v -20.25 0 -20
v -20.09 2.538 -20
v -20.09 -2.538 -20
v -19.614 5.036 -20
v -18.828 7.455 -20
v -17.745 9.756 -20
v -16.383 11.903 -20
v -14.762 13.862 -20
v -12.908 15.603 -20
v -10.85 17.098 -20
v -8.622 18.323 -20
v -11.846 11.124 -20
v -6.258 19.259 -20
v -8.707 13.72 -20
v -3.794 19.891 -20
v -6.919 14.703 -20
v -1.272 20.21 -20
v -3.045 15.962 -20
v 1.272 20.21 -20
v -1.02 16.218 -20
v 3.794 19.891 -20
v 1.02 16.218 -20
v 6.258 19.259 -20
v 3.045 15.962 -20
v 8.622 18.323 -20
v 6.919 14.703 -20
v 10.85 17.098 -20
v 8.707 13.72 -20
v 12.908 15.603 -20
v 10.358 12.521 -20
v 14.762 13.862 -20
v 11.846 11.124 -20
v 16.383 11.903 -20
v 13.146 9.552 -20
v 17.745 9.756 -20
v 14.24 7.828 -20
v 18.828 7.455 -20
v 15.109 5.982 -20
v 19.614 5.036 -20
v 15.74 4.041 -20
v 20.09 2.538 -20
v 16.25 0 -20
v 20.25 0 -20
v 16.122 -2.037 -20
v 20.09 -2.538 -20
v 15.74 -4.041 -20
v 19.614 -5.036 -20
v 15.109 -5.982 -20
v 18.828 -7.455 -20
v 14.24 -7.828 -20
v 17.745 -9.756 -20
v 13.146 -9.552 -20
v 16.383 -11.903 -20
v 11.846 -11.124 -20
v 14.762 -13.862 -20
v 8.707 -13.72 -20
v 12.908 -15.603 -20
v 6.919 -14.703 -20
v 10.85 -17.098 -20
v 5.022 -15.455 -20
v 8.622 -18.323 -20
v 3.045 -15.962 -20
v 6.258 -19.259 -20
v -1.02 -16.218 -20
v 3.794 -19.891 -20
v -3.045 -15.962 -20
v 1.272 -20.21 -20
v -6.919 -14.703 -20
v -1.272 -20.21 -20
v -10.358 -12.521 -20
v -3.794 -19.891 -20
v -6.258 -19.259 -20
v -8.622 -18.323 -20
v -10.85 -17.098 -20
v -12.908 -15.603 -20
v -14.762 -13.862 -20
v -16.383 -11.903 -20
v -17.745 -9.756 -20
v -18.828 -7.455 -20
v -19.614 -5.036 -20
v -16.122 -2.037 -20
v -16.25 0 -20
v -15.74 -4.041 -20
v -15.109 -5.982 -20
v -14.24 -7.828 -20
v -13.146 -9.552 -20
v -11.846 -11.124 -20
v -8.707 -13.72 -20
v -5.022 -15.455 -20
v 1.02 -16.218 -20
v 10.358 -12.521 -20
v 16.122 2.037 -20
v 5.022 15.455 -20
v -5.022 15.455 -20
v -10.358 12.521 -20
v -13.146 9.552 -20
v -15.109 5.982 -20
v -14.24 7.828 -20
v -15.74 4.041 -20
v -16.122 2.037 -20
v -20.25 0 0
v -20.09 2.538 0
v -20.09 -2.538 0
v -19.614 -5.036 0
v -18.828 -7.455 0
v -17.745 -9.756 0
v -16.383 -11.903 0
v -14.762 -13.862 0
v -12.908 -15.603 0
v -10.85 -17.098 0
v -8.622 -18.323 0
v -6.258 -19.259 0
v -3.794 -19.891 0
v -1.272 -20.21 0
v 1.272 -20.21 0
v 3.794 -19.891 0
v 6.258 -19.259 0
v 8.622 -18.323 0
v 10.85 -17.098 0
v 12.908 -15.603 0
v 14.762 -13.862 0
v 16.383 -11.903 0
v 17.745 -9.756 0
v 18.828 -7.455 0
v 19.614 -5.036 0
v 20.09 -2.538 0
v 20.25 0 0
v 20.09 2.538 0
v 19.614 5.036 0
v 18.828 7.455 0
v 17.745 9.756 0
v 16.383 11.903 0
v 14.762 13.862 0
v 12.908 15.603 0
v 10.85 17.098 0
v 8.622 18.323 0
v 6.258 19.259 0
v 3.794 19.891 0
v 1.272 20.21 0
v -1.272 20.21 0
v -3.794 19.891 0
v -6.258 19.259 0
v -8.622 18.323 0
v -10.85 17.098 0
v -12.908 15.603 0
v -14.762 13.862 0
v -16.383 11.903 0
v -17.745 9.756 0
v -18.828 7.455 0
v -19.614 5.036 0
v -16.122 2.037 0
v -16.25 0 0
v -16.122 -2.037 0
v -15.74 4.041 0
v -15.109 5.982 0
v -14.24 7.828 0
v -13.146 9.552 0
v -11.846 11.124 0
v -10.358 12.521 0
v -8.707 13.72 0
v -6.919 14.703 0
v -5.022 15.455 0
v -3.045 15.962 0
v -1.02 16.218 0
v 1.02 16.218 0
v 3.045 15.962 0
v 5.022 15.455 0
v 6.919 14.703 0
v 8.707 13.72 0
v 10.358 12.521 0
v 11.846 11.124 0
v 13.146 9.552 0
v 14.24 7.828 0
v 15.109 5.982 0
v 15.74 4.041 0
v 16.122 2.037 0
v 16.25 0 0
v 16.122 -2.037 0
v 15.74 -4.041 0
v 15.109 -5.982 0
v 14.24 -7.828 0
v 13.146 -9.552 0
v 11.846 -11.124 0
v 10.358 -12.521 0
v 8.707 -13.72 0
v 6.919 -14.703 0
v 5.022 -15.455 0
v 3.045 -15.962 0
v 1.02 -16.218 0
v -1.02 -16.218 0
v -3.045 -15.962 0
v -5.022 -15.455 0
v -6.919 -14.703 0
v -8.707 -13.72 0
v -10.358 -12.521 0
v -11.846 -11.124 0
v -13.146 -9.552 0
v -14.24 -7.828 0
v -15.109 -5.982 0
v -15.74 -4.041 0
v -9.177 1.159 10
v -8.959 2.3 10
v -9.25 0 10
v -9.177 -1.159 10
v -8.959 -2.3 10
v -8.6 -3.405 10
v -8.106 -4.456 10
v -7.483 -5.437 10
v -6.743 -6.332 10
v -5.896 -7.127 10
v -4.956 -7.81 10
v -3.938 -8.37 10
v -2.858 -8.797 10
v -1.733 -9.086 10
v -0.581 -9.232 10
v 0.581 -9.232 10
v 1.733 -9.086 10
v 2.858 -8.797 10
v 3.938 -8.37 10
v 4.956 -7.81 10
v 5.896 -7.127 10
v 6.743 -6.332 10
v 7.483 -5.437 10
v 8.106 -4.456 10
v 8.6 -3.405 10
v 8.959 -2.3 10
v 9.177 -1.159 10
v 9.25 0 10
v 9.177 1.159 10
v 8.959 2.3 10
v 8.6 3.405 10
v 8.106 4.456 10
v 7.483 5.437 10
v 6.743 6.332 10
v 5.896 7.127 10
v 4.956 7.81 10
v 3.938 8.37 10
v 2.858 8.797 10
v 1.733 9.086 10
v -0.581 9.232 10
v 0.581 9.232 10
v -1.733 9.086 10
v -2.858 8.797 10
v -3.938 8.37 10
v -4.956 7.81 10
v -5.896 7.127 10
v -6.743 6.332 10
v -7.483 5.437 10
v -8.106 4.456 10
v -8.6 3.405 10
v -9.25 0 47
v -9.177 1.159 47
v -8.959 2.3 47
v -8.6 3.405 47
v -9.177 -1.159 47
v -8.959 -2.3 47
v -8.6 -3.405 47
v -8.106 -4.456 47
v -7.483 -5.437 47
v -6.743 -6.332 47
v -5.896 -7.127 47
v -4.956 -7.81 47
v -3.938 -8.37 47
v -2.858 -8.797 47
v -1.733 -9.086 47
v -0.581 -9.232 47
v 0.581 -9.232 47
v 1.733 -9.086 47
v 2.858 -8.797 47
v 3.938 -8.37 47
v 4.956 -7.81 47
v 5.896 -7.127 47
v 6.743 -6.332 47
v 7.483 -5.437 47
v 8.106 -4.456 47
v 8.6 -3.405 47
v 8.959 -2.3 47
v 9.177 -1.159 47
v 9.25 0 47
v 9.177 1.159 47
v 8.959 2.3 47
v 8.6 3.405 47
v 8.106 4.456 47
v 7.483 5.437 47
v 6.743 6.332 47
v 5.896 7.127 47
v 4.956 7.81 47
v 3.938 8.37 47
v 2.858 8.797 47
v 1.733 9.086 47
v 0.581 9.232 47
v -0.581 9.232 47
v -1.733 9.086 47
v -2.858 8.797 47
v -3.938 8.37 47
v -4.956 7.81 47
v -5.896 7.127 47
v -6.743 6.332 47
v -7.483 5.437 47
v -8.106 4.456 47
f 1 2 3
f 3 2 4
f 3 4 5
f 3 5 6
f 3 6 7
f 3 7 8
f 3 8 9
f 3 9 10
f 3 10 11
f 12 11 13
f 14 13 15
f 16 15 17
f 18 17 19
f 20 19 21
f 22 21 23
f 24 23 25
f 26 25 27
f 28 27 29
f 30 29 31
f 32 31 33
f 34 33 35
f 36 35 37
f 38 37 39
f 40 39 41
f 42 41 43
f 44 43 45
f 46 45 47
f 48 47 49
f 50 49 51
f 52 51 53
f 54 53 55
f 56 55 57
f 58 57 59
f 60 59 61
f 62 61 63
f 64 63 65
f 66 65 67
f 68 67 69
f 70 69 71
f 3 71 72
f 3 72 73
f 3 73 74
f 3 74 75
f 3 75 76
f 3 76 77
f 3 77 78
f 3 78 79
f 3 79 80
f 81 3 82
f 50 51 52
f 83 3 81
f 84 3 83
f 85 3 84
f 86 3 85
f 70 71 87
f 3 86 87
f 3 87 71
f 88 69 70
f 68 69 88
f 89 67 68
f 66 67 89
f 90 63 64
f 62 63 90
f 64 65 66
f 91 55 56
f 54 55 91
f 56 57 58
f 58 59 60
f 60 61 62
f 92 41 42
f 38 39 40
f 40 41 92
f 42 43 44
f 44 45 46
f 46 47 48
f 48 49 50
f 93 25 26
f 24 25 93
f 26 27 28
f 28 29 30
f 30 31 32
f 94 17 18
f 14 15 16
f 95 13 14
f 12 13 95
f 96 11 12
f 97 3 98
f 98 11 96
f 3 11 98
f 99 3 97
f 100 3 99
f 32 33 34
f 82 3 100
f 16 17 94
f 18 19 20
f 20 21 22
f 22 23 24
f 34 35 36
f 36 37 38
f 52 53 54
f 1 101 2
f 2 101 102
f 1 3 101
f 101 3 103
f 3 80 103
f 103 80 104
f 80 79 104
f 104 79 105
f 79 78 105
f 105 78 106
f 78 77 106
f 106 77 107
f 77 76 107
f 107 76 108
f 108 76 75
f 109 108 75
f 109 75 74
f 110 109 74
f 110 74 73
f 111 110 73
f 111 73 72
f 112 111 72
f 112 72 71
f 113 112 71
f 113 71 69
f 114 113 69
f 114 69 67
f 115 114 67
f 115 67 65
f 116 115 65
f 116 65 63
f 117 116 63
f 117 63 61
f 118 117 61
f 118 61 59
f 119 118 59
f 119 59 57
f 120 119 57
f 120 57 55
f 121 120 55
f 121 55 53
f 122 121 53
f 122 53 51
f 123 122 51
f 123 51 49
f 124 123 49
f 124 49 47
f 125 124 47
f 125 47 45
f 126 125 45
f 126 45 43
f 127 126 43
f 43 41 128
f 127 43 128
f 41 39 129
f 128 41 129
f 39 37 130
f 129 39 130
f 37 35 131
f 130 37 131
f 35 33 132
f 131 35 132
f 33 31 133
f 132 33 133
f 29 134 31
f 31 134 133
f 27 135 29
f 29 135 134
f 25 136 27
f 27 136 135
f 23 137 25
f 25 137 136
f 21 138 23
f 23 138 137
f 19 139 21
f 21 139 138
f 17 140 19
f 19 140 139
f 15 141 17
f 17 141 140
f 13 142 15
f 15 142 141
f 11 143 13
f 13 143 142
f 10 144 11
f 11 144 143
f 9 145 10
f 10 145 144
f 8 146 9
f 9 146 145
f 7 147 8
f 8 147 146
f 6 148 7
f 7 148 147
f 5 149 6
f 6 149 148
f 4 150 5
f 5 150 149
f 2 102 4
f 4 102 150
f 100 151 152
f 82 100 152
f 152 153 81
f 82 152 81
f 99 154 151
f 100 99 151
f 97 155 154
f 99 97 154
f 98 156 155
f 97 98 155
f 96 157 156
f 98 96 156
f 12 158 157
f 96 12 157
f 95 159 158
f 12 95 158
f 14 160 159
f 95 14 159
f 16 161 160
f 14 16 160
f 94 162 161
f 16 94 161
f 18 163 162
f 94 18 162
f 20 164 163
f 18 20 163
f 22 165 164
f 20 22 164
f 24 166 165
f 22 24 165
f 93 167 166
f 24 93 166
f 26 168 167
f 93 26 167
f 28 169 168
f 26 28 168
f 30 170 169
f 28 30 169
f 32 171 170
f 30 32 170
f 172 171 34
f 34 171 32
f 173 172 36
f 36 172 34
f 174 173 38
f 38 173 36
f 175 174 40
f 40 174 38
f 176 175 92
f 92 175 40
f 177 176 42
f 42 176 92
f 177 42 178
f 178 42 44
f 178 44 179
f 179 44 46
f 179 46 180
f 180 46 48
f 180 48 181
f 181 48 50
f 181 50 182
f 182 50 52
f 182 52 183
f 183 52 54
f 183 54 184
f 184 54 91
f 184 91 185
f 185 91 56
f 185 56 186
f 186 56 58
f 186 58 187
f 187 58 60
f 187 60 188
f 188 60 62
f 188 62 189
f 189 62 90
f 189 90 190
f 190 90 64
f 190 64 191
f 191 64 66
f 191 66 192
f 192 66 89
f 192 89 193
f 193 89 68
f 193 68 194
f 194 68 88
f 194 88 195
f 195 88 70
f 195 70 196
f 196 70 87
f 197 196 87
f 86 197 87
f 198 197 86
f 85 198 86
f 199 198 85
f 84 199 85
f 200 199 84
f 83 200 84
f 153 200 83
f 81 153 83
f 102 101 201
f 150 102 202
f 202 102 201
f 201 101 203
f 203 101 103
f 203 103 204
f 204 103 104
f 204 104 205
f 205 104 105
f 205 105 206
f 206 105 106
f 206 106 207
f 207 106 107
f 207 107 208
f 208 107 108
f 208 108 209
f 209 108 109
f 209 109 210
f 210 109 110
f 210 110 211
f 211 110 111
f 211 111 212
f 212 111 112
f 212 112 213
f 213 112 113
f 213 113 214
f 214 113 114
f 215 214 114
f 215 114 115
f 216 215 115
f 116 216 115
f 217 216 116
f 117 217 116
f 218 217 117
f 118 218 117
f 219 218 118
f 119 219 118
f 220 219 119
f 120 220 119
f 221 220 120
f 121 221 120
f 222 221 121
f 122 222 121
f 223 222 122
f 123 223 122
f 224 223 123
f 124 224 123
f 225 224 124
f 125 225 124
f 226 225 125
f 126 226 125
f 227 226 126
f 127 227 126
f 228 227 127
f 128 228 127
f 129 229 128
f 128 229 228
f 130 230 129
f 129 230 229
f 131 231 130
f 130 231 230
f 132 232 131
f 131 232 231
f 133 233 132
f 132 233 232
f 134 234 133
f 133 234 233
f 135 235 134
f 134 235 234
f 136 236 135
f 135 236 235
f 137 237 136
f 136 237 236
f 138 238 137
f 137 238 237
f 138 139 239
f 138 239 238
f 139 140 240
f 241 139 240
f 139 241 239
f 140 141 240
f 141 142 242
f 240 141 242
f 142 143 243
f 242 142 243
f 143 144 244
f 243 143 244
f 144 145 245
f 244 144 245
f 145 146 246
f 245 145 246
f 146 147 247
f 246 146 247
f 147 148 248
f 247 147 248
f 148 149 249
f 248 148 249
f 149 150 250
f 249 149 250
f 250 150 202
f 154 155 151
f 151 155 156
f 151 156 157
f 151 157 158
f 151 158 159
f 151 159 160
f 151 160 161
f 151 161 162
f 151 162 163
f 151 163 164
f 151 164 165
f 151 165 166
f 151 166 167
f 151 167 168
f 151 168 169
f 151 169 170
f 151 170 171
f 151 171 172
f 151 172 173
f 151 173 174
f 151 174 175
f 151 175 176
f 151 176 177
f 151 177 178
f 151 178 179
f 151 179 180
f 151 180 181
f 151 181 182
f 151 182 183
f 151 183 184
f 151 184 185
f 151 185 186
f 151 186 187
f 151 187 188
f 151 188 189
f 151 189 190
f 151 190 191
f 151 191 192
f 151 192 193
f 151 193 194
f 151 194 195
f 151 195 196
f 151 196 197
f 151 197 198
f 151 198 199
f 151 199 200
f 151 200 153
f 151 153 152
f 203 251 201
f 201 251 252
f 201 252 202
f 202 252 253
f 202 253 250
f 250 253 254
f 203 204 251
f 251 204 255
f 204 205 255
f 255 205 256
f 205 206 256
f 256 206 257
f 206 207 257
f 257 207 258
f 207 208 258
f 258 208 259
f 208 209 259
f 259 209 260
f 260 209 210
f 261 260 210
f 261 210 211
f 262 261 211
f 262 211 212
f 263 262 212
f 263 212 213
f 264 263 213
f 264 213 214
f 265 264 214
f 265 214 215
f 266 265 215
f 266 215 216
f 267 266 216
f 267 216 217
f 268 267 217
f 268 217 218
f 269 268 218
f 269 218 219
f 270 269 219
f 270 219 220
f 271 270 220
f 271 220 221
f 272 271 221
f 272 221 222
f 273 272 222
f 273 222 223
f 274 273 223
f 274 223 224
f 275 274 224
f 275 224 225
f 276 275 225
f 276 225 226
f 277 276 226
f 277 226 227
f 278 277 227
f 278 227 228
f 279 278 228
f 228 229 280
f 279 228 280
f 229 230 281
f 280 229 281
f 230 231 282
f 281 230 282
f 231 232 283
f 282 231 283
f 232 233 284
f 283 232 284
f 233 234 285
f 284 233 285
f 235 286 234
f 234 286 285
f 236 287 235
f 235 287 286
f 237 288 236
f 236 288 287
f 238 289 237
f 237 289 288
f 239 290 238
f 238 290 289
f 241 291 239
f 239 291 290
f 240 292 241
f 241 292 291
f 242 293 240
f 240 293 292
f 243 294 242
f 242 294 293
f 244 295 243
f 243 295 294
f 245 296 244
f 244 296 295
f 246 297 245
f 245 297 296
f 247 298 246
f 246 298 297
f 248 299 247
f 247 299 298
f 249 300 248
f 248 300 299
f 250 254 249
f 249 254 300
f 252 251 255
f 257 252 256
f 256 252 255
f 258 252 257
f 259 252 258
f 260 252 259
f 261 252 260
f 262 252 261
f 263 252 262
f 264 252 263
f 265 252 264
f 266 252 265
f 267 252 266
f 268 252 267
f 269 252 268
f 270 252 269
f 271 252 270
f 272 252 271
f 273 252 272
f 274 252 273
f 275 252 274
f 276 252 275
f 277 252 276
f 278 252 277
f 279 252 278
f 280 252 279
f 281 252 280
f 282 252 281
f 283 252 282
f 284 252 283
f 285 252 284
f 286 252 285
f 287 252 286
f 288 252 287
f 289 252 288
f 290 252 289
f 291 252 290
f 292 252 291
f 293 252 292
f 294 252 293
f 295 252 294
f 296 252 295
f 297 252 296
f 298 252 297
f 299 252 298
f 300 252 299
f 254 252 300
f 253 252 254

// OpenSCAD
// SatNOGS Turnstile antenna mount

$fn=50;

// Variables
i_b = 32.5; //Inner Bottom width
o_u = 18.5; //Outer Upper width
t_h = 10; //Transitional height

// Main model

module mount(){
	difference(){
		union(){
			translate([0,0,-10])
				cylinder(d=i_b+8, h=20, center=true);
			translate([0,0,t_h/2])
				cylinder(d1=i_b+8, d2=o_u, h=t_h, center=true);
			translate([0,0,t_h+(o_u*2)/2])
				cylinder(d=o_u, h=o_u*2, center=true);
		}
		translate([0,0,-11])
			cylinder(d=i_b, h=22, center=true);
	}
}

mount();
